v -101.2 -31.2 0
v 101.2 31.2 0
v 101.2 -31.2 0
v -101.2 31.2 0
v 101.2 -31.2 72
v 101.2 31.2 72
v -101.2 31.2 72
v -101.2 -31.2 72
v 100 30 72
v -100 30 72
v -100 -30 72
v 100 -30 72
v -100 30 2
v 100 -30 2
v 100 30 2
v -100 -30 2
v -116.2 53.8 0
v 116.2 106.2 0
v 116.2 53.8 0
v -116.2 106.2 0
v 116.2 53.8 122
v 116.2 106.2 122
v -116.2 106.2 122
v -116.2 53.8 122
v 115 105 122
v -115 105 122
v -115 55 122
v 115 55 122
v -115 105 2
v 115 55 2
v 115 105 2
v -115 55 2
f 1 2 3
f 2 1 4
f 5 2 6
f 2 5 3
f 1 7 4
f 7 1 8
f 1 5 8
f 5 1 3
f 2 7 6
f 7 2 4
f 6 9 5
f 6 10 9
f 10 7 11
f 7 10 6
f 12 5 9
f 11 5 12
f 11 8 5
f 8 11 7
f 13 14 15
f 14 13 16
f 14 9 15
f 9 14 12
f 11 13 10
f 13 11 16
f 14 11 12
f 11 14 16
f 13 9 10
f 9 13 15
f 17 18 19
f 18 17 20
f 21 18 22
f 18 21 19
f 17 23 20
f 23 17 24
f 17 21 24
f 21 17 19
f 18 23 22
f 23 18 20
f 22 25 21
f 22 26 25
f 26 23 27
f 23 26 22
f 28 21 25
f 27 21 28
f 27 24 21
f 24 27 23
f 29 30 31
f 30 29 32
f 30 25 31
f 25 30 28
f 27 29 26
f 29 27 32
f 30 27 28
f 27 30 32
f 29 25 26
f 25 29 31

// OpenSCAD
module box(workspace, base_height, wall_thickness) {
    wall = wall_thickness * 2.00;

    difference() {
        linear_extrude(workspace[2] + base_height)
            square([workspace[0] + wall, workspace[1] + wall], center = true);
        
        translate([0, 0, base_height])
            linear_extrude(workspace[2])
                square([workspace[0], workspace[1]], center = true);
    }
    
}

box([200.00, 60.00, 70.00], 2.00, 1.20); // sponge kitchen holder

translate([0.00, 80.00, 0.00])
    box([230.00, 50.00, 120.00], 2.00, 1.20); // foil kitchen holder
